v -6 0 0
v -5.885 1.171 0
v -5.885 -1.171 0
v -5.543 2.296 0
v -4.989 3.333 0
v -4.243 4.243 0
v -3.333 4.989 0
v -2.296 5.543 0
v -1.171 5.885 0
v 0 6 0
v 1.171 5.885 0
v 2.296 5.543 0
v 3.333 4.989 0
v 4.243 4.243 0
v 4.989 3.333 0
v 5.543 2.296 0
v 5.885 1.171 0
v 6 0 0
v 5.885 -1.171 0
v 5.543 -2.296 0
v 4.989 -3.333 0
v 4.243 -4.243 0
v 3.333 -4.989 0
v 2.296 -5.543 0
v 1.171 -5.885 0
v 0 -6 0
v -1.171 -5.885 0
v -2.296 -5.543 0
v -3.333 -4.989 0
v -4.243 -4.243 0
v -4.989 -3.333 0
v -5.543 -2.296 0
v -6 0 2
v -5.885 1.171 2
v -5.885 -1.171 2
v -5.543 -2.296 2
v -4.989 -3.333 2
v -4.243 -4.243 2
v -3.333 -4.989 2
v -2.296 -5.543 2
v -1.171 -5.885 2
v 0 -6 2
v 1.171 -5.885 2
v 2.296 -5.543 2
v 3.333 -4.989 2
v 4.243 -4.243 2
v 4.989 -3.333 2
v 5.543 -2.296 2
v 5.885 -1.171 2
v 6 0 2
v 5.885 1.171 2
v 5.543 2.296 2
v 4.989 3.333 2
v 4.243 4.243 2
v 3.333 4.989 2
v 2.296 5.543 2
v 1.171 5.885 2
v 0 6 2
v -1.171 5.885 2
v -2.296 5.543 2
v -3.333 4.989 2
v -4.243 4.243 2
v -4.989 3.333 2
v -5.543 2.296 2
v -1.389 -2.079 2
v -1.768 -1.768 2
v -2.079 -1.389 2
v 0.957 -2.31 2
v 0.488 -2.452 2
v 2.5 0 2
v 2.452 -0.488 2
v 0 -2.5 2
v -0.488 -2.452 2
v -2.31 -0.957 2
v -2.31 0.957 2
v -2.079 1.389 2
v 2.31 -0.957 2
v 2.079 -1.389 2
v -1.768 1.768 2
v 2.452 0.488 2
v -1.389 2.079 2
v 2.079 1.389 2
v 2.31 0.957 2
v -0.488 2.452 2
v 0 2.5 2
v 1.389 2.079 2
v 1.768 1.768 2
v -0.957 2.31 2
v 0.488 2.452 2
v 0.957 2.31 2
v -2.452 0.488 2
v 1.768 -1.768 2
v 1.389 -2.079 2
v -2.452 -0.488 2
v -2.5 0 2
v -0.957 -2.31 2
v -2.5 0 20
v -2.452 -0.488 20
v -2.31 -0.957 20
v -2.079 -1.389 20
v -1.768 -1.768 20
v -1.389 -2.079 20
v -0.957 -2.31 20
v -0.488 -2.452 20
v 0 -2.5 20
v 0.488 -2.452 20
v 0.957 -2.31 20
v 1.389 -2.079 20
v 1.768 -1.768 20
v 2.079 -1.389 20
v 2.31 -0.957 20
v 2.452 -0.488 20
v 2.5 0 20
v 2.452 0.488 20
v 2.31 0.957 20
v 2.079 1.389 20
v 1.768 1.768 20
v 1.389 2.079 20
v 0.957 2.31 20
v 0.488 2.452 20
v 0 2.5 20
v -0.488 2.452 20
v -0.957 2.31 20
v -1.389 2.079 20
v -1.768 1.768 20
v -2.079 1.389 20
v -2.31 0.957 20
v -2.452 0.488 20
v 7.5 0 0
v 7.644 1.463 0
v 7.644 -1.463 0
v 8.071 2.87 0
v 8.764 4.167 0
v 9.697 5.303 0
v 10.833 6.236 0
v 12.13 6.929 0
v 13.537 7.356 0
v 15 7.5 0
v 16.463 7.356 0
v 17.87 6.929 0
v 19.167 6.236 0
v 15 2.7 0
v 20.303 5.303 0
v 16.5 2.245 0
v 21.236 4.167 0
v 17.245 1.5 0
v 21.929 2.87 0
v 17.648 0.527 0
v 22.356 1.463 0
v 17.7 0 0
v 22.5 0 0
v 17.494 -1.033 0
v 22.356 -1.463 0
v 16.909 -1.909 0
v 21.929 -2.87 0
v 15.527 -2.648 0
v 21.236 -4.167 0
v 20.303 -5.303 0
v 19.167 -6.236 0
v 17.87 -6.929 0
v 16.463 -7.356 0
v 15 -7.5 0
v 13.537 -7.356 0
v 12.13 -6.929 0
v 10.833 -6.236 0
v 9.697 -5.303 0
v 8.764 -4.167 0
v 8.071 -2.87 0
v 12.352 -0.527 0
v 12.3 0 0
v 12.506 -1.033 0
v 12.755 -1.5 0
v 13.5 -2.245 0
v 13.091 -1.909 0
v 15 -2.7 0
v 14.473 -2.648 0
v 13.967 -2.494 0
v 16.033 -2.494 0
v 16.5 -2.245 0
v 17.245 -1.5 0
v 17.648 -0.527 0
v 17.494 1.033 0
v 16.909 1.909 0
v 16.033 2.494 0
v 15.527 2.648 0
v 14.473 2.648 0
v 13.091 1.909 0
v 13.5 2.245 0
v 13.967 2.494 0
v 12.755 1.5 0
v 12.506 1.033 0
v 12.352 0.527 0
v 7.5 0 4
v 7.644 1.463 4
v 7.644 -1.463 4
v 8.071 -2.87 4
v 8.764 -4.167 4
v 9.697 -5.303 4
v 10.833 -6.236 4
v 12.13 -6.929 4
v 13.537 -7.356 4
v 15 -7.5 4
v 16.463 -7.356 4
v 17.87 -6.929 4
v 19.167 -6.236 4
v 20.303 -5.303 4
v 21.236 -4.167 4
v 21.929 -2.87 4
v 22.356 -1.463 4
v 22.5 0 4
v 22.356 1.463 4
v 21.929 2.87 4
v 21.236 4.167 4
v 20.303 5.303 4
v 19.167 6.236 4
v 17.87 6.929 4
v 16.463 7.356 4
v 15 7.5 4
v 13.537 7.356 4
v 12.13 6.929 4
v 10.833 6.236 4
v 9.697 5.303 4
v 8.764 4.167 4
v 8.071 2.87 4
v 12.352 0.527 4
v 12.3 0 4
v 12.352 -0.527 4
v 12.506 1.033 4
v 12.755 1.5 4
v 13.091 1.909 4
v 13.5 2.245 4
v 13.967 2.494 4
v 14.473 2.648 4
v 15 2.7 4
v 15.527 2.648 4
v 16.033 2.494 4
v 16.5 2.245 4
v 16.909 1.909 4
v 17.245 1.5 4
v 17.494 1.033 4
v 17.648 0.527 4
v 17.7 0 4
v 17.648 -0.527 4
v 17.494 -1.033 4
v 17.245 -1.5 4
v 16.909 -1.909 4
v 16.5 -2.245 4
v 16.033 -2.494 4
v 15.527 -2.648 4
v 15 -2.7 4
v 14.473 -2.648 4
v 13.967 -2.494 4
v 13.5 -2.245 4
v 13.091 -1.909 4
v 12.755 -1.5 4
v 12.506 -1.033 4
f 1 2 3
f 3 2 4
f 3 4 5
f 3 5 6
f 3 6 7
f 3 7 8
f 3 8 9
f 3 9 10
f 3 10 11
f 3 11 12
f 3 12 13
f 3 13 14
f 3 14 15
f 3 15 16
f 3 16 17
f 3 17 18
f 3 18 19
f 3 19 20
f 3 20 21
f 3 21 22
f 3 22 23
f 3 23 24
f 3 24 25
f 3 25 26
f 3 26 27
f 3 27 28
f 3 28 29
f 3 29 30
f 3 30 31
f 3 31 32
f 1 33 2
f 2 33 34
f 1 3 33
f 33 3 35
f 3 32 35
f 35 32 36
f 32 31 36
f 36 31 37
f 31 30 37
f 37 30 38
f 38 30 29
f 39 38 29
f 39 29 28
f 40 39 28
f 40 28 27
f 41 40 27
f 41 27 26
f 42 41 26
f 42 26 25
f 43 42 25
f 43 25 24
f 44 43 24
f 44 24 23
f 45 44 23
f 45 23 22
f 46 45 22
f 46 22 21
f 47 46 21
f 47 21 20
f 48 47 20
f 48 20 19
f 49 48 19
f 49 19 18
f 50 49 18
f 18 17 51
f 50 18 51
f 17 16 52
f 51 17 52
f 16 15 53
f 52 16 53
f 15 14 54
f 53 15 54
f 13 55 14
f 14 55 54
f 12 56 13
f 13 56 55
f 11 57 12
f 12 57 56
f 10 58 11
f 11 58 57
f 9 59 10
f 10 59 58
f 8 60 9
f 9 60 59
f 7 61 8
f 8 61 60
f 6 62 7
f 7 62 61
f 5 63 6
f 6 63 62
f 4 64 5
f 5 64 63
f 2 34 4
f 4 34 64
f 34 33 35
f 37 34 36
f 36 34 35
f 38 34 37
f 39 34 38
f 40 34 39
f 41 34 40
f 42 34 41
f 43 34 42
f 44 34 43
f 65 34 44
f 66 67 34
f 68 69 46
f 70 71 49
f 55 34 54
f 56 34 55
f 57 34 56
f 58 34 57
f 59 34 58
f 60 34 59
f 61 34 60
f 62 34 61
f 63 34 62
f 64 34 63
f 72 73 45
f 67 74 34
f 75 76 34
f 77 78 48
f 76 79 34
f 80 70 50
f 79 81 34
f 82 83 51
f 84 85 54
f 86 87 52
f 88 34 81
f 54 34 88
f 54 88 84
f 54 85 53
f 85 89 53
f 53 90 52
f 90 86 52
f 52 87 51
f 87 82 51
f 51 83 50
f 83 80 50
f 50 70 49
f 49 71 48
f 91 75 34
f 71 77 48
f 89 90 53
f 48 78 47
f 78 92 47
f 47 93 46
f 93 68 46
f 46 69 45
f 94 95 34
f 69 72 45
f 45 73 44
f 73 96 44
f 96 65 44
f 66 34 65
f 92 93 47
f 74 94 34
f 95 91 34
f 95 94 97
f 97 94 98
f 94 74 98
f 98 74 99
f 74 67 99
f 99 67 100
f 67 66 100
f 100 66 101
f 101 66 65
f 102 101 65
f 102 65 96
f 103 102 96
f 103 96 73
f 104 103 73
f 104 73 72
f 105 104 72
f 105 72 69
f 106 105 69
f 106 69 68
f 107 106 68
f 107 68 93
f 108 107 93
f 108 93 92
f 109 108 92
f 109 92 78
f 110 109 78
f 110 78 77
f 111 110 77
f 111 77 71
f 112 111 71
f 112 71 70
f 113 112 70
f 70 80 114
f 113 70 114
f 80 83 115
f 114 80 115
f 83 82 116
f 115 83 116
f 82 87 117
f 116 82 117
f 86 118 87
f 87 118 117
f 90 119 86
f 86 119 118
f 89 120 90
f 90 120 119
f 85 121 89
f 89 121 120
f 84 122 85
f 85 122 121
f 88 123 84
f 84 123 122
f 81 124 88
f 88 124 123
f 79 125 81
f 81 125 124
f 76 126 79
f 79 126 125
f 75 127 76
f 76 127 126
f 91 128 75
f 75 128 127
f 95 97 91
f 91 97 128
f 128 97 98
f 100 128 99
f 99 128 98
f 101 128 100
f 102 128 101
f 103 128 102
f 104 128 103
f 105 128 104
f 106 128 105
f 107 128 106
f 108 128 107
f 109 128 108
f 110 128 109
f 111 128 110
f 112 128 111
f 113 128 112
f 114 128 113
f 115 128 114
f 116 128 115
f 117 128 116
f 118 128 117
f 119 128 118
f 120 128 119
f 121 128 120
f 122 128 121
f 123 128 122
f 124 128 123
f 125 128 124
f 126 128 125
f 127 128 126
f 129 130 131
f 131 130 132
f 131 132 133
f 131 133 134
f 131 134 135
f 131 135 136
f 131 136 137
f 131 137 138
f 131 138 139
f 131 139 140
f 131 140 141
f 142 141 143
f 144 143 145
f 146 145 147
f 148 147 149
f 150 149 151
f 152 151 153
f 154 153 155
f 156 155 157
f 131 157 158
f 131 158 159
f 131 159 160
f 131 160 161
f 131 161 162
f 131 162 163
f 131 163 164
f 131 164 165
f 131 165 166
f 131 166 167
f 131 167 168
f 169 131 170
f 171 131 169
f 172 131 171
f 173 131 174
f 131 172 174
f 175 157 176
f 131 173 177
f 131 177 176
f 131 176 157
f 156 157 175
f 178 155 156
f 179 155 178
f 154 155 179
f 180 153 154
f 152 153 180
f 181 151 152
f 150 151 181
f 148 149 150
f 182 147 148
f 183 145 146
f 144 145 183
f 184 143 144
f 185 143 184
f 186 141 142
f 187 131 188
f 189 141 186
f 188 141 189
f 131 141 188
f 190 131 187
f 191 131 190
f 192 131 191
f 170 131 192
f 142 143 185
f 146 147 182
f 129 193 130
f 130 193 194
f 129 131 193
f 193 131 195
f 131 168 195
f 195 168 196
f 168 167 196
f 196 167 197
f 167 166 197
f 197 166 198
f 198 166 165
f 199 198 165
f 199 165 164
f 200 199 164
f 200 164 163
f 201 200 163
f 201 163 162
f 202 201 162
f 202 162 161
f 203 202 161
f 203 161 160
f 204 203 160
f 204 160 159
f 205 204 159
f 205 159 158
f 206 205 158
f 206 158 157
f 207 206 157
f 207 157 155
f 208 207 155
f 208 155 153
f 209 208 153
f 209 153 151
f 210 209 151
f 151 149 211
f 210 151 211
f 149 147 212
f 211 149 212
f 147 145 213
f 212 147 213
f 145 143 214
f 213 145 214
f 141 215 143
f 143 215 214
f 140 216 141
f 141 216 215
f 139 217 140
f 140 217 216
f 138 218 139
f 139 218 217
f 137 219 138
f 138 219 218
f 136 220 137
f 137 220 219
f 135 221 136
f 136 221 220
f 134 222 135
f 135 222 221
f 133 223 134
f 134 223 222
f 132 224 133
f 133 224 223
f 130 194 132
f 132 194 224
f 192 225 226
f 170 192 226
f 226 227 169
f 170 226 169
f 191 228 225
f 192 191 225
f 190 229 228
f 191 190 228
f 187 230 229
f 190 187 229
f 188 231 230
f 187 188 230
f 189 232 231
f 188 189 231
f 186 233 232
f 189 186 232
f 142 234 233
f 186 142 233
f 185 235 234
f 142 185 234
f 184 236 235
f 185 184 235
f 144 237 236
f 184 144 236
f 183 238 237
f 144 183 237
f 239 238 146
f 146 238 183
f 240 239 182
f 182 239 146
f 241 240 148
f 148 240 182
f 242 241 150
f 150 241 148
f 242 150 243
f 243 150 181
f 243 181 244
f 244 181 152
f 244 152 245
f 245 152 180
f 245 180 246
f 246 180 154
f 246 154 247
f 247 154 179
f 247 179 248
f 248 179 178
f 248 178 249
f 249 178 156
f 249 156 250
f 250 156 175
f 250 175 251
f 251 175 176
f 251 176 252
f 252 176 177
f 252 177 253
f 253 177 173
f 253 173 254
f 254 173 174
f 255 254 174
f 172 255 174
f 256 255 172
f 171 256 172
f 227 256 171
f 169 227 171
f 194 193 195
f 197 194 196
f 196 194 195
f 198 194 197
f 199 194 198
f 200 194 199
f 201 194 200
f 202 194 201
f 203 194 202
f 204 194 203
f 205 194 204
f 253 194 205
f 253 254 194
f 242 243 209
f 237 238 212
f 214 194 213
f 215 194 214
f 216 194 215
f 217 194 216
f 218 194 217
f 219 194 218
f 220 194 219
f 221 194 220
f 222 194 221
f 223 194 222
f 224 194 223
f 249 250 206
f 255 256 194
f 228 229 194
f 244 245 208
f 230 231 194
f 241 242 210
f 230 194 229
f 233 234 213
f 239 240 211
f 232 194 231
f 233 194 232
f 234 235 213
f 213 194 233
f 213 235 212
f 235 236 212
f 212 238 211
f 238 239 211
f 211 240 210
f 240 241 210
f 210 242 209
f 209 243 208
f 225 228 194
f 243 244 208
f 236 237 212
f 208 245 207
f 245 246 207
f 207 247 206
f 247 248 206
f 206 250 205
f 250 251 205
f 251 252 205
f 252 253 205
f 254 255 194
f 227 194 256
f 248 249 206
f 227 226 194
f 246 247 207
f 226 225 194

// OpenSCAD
clearance = .2;

union(){
	cylinder(r=6, h=2, $fn=32);
	cylinder(r=2.5, h=20, $fn=32);
}

translate([15,0,0])
difference(){
	cylinder(r=7.5, h=4, $fn=32);
	translate([0,0,-1])
	cylinder(r=2.5 + clearance, h=4 + 2, $fn=32);
}
